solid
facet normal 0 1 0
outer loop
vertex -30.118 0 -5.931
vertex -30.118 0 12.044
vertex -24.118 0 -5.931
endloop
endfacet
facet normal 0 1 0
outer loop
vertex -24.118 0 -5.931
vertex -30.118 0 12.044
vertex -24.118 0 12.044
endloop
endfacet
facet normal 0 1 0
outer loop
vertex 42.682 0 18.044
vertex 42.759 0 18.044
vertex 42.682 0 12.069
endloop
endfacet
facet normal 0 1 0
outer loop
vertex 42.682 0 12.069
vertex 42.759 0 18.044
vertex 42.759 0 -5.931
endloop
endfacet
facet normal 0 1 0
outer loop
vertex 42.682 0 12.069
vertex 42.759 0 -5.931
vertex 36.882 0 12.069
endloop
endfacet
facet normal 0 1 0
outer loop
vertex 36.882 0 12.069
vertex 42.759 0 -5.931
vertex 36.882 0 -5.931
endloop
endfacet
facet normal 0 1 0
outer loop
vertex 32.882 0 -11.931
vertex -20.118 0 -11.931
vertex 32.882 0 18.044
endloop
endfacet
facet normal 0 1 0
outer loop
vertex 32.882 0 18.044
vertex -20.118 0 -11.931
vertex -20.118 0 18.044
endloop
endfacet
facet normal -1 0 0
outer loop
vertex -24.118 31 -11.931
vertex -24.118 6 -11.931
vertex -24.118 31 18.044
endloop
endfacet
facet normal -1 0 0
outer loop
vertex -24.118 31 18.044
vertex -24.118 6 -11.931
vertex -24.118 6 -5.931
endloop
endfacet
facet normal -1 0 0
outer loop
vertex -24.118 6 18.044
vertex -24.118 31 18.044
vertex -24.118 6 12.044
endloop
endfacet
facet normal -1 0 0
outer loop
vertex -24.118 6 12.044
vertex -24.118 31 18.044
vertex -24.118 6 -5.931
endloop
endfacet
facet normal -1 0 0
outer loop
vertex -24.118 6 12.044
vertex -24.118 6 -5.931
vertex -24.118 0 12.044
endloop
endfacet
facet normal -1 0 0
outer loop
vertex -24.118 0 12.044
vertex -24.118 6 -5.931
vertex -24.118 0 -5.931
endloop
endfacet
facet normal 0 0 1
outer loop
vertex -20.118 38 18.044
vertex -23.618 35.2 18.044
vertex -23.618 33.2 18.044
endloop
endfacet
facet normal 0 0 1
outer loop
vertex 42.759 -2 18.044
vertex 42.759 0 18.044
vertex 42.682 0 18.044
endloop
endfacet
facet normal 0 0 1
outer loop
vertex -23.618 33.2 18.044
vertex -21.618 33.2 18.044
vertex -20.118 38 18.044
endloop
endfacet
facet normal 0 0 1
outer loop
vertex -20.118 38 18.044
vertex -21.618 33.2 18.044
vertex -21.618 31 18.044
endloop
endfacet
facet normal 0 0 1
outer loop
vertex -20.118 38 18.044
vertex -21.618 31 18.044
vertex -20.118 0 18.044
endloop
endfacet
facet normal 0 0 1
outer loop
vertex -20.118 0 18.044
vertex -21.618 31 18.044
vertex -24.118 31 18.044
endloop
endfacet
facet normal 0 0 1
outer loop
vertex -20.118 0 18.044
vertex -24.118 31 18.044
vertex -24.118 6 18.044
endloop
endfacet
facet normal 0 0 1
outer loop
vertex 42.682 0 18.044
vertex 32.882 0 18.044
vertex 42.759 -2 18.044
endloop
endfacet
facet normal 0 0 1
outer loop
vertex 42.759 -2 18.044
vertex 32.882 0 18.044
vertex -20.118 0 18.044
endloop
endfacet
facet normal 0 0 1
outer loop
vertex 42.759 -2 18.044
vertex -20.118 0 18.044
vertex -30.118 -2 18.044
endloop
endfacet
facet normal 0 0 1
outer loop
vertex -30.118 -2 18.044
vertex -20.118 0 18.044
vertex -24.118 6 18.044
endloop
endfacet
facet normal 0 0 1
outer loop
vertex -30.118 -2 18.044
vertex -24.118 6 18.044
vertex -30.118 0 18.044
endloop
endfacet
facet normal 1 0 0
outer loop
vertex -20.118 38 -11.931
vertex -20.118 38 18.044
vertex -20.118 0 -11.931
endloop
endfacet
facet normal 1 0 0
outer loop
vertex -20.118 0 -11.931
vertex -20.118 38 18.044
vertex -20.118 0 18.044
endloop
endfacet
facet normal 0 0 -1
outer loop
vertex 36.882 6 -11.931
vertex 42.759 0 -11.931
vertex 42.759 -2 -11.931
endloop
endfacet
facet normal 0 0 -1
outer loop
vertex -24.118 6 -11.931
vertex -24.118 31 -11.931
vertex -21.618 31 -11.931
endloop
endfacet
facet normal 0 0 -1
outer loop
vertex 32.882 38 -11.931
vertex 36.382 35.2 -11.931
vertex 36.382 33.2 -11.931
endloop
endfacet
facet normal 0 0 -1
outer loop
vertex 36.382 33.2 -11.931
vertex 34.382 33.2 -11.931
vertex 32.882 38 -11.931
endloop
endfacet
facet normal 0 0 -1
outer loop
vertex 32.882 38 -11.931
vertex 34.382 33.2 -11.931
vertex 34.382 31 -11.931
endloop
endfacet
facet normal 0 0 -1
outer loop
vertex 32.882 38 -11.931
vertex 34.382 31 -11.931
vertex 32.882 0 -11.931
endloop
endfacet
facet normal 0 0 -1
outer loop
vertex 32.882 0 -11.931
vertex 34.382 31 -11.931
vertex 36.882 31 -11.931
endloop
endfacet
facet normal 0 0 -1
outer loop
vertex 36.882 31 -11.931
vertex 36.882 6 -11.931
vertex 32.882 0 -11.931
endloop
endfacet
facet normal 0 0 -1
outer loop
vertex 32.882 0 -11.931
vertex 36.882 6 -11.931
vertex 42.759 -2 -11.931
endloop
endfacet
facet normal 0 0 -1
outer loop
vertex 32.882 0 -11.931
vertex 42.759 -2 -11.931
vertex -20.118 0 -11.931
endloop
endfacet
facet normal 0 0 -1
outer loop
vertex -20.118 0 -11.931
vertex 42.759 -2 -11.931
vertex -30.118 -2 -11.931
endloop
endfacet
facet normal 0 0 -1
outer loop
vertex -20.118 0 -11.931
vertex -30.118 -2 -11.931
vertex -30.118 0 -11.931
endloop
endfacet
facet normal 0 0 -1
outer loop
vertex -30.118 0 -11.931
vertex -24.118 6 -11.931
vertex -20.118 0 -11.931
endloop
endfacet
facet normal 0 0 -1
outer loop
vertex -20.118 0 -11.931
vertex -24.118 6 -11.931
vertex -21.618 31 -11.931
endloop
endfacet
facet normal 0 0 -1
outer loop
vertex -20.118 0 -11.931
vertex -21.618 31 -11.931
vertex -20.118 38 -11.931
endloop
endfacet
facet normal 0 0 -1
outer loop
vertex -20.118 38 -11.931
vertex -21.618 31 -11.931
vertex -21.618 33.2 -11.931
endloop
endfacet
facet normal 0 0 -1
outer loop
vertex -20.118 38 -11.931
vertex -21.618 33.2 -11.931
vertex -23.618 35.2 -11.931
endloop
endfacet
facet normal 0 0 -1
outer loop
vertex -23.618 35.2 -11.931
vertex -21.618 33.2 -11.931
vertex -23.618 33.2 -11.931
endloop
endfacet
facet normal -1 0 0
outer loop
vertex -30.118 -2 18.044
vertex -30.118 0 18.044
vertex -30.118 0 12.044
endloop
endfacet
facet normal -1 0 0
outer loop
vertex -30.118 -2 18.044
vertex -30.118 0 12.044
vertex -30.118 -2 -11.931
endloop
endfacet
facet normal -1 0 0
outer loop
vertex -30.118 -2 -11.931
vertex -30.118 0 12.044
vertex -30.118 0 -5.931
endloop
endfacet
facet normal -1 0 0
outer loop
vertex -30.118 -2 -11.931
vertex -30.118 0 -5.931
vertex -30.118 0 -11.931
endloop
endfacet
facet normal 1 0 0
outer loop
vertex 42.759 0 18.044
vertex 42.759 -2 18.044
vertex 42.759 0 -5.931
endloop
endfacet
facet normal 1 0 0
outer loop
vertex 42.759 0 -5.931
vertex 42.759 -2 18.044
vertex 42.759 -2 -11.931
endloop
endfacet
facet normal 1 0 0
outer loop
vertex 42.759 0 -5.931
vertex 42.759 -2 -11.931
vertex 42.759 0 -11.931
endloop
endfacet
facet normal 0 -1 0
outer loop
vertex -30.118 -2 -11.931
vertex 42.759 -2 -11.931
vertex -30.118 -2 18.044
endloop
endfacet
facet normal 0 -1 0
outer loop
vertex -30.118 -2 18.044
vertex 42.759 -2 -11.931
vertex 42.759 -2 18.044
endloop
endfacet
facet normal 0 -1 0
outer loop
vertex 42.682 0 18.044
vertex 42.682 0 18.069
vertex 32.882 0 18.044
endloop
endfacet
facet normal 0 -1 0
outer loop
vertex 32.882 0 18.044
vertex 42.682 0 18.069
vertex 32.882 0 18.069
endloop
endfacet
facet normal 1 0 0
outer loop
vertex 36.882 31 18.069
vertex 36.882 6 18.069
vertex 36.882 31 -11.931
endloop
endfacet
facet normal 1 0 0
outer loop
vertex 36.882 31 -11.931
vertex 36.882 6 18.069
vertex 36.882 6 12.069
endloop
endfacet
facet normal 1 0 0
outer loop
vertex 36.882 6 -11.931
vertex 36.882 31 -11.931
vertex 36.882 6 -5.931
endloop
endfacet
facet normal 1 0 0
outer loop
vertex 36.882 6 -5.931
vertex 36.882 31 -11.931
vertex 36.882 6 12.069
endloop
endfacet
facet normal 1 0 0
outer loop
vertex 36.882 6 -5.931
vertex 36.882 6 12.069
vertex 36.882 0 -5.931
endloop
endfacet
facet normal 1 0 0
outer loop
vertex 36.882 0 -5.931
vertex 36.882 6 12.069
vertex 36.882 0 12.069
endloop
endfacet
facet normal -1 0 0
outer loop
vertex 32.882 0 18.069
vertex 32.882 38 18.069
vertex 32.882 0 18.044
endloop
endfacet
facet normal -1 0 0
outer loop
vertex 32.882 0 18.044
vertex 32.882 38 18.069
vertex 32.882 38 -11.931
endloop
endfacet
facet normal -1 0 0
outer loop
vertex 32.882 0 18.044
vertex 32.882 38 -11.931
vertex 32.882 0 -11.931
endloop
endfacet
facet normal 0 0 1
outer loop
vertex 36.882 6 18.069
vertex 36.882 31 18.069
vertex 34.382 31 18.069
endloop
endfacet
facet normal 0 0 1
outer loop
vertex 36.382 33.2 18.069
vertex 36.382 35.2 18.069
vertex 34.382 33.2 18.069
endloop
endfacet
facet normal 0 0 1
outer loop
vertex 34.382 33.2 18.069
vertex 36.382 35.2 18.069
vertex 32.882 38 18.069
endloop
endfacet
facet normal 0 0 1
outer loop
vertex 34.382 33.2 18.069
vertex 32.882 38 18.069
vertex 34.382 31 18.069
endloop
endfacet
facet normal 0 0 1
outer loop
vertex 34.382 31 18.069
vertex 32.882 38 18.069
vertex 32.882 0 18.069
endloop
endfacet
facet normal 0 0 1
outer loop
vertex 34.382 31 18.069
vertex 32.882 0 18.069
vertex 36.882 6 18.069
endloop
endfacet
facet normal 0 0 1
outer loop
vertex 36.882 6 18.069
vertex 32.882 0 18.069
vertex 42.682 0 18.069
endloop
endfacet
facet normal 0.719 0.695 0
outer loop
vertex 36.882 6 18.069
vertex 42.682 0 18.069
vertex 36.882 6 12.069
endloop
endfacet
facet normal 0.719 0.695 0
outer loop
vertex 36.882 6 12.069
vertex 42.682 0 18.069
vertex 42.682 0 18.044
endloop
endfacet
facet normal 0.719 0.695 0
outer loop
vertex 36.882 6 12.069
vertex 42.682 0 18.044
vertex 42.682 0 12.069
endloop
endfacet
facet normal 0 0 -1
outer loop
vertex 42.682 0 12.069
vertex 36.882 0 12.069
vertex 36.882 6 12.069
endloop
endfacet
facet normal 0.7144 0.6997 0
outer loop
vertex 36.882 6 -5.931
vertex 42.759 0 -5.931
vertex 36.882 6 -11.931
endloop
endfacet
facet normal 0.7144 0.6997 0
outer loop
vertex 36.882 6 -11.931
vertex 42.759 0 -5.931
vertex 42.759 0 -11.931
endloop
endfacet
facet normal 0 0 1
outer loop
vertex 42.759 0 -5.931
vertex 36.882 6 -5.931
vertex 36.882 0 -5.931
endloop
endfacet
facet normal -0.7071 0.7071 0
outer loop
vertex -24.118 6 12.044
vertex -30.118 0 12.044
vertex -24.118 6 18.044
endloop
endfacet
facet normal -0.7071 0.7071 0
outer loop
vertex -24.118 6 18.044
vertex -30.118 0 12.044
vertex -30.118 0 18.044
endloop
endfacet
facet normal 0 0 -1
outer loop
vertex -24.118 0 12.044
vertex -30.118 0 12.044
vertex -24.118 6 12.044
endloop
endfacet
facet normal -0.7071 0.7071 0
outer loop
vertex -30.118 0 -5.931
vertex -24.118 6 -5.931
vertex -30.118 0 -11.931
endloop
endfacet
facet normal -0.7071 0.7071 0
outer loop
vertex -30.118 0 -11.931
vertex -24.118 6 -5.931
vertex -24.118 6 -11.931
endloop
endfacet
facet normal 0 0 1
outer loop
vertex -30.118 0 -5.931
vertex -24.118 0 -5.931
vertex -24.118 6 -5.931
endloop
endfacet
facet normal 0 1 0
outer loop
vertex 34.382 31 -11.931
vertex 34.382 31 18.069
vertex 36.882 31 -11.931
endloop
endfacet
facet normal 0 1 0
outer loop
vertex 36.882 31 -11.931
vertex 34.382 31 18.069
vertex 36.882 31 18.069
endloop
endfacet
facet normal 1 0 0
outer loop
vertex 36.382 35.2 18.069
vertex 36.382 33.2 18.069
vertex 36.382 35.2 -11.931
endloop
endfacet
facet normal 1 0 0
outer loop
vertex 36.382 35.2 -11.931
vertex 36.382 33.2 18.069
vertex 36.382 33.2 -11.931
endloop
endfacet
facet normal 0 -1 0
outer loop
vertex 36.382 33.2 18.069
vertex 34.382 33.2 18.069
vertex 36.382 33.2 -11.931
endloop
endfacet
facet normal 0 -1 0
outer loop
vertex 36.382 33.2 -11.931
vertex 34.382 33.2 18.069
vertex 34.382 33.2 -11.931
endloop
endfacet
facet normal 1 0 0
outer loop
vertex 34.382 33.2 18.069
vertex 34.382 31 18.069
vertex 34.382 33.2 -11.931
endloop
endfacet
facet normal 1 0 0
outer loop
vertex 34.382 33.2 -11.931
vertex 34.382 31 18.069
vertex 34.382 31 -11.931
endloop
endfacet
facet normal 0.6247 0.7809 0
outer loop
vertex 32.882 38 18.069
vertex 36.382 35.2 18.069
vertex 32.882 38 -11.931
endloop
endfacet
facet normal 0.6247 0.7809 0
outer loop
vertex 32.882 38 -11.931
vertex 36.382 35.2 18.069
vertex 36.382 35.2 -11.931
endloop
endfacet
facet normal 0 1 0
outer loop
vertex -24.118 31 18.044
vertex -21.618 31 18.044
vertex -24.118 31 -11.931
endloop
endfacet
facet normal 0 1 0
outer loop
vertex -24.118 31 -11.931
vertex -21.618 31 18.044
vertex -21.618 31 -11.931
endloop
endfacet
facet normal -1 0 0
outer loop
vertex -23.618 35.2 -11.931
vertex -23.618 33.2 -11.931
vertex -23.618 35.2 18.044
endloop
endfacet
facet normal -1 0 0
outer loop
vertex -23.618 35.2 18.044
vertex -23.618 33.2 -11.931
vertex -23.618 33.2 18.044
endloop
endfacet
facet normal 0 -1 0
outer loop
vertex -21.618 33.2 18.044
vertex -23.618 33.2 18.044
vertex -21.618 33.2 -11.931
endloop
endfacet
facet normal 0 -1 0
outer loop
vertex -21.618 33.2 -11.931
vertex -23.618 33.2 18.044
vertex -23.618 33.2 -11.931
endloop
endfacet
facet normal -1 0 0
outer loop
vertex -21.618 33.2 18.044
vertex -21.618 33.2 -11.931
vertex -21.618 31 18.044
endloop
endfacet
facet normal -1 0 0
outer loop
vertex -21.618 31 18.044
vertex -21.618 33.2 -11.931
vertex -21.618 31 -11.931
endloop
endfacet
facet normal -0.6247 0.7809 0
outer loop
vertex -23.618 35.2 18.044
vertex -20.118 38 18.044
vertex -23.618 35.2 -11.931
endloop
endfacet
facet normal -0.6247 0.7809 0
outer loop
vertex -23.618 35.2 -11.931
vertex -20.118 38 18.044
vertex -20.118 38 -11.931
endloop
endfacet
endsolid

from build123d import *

# Parameters (mm, degrees)
SKETCH2_W             = 4
SKETCH2_H             = 29.975509742
BOSS_EXTRUDE1_DEPTH   = 38
BOSS_EXTRUDE1_2_DEPTH = 38
SKETCH3_W             = 72.876339672
SKETCH3_H             = 29.975509742
BOSS_EXTRUDE3_DEPTH   = 2
BOSS_EXTRUDE4_DEPTH   = 6
BOSS_EXTRUDE5_DEPTH   = 6
BOSS_EXTRUDE7_DEPTH   = 6
BOSS_EXTRUDE8_DEPTH   = 6
SKETCH17_W            = 32.717324733
SKETCH17_H            = 7
CUT_EXTRUDE9_DEPTH    = 0.5
SKETCH18_W            = 40.099699831
SKETCH18_H            = 2.2
CUT_EXTRUDE10_DEPTH   = 2
CUT_EXTRUDE11_DEPTH   = 31
SKETCH20_W            = 49.216753152
SKETCH20_H            = 10.950019834
CUT_EXTRUDE12_DEPTH   = 0.5
SKETCH21_W            = 42.54396611
SKETCH21_H            = 2.2
CUT_EXTRUDE13_DEPTH   = 2
CUT_EXTRUDE14_DEPTH   = 30.975509742


with BuildPart() as part:
    # Sketch2 → Boss-Extrude1 (new body)
    with BuildSketch(Plane(origin=(0, 0, 0), x_dir=(1, 0, 0), z_dir=(0, 1, 0))):
        with Locations((-22.117643943, -3.05661445)):
            Rectangle(SKETCH2_W, SKETCH2_H)
    extrude(amount=BOSS_EXTRUDE1_DEPTH)



with BuildPart() as body_2:
    # Sketch2 → Boss-Extrude1 2 (new body)
    with BuildSketch(Plane(origin=(0, 0, 0), x_dir=(1, 0, 0), z_dir=(0, 1, 0))):
        Polygon((36.882356057, 11.931140421), (35.682356057, 11.931140421), (32.882356057, 11.931140421), (32.882356057, -18.068859579), (36.882356057, -18.068859579), align=None)
    extrude(amount=BOSS_EXTRUDE1_2_DEPTH)


with BuildPart() as part_1:
    add(part.part)

    add(body_2.part)  # Boss-Extrude3 merges body 2
    # Sketch3 → Boss-Extrude3 (add)
    with BuildSketch(Plane(origin=(0, 0, 0), x_dir=(1, 0, 0), z_dir=(0, 1, 0))):
        with Locations((6.320525893, -3.05661445)):
            Rectangle(SKETCH3_W, SKETCH3_H)
    extrude(amount=-BOSS_EXTRUDE3_DEPTH)

    # Sketch6 → Boss-Extrude4 (add)
    with BuildSketch(Plane.XY.offset(18.068859579)):
        Polygon((36.882356057, 6), (36.882356057, 0), (42.682356057, 0), align=None)
    extrude(amount=-BOSS_EXTRUDE4_DEPTH)

    # Sketch7 → Boss-Extrude5 (add)
    with BuildSketch(Plane(origin=(0, 0, -11.931140421), x_dir=(-1, 0, 0), z_dir=(0, 0, -1))):
        Polygon((-42.758695729, 0), (-36.882356057, 6), (-36.882356057, 0), align=None)
    extrude(amount=-BOSS_EXTRUDE5_DEPTH)

    # Sketch9 → Boss-Extrude7 (add)
    with BuildSketch(Plane.XY.offset(18.044369321)):
        Polygon((-24.117643943, 6), (-30.117643943, 0), (-24.117643943, 0), align=None)
    extrude(amount=-BOSS_EXTRUDE7_DEPTH)

    # Sketch8 → Boss-Extrude8 (add)
    with BuildSketch(Plane(origin=(0, 0, -11.931140421), x_dir=(-1, 0, 0), z_dir=(0, 0, -1))):
        Polygon((24.117643943, 6), (24.117643943, 0), (30.117643943, 0), align=None)
    extrude(amount=-BOSS_EXTRUDE8_DEPTH)

    # Sketch17 → Cut-Extrude9 (cut)
    with BuildSketch(Plane(origin=(36.882356057, 0, 0), x_dir=(0, 0, -1), z_dir=(1, 0, 0))):
        with Locations((-4.427521945, 34.5)):
            Rectangle(SKETCH17_W, SKETCH17_H)
    extrude(amount=-CUT_EXTRUDE9_DEPTH, mode=Mode.SUBTRACT)

    # Sketch18 → Cut-Extrude10 (cut)
    with BuildSketch(Plane(origin=(36.382356057, 0, 0), x_dir=(0, 0, -1), z_dir=(1, 0, 0))):
        with Locations((1.980990336, 32.1)):
            Rectangle(SKETCH18_W, SKETCH18_H)
    extrude(amount=-CUT_EXTRUDE10_DEPTH, mode=Mode.SUBTRACT)

    # Sketch19 → Cut-Extrude11 (cut, through all)
    with BuildSketch(Plane.XY.offset(18.068859579)):
        Polygon((36.382356057, 35.2), (32.882356057, 38), (30.81845706, 44.907759877), (43.465809669, 41.162121973), align=None)
    extrude(amount=-CUT_EXTRUDE11_DEPTH, mode=Mode.SUBTRACT)

    # Sketch20 → Cut-Extrude12 (cut)
    with BuildSketch(Plane.ZY.offset(24.117643943)):
        with Locations((-6.564007255, 36.475009917)):
            Rectangle(SKETCH20_W, SKETCH20_H)
    extrude(amount=-CUT_EXTRUDE12_DEPTH, mode=Mode.SUBTRACT)

    # Sketch21 → Cut-Extrude13 (cut)
    with BuildSketch(Plane.ZY.offset(23.617643943)):
        with Locations((-3.227613734, 32.1)):
            Rectangle(SKETCH21_W, SKETCH21_H)
    extrude(amount=-CUT_EXTRUDE13_DEPTH, mode=Mode.SUBTRACT)

    # Sketch22 → Cut-Extrude14 (cut, through all)
    with BuildSketch(Plane.XY.offset(18.044369321)):
        Polygon((-23.617643943, 35.2), (-20.117643943, 38), (-17.308564487, 46.700014394), (-43.949503764, 46.700014394), (-33.84948937, 36.6), align=None)
    extrude(amount=-CUT_EXTRUDE14_DEPTH, mode=Mode.SUBTRACT)


solid = part_1.part
